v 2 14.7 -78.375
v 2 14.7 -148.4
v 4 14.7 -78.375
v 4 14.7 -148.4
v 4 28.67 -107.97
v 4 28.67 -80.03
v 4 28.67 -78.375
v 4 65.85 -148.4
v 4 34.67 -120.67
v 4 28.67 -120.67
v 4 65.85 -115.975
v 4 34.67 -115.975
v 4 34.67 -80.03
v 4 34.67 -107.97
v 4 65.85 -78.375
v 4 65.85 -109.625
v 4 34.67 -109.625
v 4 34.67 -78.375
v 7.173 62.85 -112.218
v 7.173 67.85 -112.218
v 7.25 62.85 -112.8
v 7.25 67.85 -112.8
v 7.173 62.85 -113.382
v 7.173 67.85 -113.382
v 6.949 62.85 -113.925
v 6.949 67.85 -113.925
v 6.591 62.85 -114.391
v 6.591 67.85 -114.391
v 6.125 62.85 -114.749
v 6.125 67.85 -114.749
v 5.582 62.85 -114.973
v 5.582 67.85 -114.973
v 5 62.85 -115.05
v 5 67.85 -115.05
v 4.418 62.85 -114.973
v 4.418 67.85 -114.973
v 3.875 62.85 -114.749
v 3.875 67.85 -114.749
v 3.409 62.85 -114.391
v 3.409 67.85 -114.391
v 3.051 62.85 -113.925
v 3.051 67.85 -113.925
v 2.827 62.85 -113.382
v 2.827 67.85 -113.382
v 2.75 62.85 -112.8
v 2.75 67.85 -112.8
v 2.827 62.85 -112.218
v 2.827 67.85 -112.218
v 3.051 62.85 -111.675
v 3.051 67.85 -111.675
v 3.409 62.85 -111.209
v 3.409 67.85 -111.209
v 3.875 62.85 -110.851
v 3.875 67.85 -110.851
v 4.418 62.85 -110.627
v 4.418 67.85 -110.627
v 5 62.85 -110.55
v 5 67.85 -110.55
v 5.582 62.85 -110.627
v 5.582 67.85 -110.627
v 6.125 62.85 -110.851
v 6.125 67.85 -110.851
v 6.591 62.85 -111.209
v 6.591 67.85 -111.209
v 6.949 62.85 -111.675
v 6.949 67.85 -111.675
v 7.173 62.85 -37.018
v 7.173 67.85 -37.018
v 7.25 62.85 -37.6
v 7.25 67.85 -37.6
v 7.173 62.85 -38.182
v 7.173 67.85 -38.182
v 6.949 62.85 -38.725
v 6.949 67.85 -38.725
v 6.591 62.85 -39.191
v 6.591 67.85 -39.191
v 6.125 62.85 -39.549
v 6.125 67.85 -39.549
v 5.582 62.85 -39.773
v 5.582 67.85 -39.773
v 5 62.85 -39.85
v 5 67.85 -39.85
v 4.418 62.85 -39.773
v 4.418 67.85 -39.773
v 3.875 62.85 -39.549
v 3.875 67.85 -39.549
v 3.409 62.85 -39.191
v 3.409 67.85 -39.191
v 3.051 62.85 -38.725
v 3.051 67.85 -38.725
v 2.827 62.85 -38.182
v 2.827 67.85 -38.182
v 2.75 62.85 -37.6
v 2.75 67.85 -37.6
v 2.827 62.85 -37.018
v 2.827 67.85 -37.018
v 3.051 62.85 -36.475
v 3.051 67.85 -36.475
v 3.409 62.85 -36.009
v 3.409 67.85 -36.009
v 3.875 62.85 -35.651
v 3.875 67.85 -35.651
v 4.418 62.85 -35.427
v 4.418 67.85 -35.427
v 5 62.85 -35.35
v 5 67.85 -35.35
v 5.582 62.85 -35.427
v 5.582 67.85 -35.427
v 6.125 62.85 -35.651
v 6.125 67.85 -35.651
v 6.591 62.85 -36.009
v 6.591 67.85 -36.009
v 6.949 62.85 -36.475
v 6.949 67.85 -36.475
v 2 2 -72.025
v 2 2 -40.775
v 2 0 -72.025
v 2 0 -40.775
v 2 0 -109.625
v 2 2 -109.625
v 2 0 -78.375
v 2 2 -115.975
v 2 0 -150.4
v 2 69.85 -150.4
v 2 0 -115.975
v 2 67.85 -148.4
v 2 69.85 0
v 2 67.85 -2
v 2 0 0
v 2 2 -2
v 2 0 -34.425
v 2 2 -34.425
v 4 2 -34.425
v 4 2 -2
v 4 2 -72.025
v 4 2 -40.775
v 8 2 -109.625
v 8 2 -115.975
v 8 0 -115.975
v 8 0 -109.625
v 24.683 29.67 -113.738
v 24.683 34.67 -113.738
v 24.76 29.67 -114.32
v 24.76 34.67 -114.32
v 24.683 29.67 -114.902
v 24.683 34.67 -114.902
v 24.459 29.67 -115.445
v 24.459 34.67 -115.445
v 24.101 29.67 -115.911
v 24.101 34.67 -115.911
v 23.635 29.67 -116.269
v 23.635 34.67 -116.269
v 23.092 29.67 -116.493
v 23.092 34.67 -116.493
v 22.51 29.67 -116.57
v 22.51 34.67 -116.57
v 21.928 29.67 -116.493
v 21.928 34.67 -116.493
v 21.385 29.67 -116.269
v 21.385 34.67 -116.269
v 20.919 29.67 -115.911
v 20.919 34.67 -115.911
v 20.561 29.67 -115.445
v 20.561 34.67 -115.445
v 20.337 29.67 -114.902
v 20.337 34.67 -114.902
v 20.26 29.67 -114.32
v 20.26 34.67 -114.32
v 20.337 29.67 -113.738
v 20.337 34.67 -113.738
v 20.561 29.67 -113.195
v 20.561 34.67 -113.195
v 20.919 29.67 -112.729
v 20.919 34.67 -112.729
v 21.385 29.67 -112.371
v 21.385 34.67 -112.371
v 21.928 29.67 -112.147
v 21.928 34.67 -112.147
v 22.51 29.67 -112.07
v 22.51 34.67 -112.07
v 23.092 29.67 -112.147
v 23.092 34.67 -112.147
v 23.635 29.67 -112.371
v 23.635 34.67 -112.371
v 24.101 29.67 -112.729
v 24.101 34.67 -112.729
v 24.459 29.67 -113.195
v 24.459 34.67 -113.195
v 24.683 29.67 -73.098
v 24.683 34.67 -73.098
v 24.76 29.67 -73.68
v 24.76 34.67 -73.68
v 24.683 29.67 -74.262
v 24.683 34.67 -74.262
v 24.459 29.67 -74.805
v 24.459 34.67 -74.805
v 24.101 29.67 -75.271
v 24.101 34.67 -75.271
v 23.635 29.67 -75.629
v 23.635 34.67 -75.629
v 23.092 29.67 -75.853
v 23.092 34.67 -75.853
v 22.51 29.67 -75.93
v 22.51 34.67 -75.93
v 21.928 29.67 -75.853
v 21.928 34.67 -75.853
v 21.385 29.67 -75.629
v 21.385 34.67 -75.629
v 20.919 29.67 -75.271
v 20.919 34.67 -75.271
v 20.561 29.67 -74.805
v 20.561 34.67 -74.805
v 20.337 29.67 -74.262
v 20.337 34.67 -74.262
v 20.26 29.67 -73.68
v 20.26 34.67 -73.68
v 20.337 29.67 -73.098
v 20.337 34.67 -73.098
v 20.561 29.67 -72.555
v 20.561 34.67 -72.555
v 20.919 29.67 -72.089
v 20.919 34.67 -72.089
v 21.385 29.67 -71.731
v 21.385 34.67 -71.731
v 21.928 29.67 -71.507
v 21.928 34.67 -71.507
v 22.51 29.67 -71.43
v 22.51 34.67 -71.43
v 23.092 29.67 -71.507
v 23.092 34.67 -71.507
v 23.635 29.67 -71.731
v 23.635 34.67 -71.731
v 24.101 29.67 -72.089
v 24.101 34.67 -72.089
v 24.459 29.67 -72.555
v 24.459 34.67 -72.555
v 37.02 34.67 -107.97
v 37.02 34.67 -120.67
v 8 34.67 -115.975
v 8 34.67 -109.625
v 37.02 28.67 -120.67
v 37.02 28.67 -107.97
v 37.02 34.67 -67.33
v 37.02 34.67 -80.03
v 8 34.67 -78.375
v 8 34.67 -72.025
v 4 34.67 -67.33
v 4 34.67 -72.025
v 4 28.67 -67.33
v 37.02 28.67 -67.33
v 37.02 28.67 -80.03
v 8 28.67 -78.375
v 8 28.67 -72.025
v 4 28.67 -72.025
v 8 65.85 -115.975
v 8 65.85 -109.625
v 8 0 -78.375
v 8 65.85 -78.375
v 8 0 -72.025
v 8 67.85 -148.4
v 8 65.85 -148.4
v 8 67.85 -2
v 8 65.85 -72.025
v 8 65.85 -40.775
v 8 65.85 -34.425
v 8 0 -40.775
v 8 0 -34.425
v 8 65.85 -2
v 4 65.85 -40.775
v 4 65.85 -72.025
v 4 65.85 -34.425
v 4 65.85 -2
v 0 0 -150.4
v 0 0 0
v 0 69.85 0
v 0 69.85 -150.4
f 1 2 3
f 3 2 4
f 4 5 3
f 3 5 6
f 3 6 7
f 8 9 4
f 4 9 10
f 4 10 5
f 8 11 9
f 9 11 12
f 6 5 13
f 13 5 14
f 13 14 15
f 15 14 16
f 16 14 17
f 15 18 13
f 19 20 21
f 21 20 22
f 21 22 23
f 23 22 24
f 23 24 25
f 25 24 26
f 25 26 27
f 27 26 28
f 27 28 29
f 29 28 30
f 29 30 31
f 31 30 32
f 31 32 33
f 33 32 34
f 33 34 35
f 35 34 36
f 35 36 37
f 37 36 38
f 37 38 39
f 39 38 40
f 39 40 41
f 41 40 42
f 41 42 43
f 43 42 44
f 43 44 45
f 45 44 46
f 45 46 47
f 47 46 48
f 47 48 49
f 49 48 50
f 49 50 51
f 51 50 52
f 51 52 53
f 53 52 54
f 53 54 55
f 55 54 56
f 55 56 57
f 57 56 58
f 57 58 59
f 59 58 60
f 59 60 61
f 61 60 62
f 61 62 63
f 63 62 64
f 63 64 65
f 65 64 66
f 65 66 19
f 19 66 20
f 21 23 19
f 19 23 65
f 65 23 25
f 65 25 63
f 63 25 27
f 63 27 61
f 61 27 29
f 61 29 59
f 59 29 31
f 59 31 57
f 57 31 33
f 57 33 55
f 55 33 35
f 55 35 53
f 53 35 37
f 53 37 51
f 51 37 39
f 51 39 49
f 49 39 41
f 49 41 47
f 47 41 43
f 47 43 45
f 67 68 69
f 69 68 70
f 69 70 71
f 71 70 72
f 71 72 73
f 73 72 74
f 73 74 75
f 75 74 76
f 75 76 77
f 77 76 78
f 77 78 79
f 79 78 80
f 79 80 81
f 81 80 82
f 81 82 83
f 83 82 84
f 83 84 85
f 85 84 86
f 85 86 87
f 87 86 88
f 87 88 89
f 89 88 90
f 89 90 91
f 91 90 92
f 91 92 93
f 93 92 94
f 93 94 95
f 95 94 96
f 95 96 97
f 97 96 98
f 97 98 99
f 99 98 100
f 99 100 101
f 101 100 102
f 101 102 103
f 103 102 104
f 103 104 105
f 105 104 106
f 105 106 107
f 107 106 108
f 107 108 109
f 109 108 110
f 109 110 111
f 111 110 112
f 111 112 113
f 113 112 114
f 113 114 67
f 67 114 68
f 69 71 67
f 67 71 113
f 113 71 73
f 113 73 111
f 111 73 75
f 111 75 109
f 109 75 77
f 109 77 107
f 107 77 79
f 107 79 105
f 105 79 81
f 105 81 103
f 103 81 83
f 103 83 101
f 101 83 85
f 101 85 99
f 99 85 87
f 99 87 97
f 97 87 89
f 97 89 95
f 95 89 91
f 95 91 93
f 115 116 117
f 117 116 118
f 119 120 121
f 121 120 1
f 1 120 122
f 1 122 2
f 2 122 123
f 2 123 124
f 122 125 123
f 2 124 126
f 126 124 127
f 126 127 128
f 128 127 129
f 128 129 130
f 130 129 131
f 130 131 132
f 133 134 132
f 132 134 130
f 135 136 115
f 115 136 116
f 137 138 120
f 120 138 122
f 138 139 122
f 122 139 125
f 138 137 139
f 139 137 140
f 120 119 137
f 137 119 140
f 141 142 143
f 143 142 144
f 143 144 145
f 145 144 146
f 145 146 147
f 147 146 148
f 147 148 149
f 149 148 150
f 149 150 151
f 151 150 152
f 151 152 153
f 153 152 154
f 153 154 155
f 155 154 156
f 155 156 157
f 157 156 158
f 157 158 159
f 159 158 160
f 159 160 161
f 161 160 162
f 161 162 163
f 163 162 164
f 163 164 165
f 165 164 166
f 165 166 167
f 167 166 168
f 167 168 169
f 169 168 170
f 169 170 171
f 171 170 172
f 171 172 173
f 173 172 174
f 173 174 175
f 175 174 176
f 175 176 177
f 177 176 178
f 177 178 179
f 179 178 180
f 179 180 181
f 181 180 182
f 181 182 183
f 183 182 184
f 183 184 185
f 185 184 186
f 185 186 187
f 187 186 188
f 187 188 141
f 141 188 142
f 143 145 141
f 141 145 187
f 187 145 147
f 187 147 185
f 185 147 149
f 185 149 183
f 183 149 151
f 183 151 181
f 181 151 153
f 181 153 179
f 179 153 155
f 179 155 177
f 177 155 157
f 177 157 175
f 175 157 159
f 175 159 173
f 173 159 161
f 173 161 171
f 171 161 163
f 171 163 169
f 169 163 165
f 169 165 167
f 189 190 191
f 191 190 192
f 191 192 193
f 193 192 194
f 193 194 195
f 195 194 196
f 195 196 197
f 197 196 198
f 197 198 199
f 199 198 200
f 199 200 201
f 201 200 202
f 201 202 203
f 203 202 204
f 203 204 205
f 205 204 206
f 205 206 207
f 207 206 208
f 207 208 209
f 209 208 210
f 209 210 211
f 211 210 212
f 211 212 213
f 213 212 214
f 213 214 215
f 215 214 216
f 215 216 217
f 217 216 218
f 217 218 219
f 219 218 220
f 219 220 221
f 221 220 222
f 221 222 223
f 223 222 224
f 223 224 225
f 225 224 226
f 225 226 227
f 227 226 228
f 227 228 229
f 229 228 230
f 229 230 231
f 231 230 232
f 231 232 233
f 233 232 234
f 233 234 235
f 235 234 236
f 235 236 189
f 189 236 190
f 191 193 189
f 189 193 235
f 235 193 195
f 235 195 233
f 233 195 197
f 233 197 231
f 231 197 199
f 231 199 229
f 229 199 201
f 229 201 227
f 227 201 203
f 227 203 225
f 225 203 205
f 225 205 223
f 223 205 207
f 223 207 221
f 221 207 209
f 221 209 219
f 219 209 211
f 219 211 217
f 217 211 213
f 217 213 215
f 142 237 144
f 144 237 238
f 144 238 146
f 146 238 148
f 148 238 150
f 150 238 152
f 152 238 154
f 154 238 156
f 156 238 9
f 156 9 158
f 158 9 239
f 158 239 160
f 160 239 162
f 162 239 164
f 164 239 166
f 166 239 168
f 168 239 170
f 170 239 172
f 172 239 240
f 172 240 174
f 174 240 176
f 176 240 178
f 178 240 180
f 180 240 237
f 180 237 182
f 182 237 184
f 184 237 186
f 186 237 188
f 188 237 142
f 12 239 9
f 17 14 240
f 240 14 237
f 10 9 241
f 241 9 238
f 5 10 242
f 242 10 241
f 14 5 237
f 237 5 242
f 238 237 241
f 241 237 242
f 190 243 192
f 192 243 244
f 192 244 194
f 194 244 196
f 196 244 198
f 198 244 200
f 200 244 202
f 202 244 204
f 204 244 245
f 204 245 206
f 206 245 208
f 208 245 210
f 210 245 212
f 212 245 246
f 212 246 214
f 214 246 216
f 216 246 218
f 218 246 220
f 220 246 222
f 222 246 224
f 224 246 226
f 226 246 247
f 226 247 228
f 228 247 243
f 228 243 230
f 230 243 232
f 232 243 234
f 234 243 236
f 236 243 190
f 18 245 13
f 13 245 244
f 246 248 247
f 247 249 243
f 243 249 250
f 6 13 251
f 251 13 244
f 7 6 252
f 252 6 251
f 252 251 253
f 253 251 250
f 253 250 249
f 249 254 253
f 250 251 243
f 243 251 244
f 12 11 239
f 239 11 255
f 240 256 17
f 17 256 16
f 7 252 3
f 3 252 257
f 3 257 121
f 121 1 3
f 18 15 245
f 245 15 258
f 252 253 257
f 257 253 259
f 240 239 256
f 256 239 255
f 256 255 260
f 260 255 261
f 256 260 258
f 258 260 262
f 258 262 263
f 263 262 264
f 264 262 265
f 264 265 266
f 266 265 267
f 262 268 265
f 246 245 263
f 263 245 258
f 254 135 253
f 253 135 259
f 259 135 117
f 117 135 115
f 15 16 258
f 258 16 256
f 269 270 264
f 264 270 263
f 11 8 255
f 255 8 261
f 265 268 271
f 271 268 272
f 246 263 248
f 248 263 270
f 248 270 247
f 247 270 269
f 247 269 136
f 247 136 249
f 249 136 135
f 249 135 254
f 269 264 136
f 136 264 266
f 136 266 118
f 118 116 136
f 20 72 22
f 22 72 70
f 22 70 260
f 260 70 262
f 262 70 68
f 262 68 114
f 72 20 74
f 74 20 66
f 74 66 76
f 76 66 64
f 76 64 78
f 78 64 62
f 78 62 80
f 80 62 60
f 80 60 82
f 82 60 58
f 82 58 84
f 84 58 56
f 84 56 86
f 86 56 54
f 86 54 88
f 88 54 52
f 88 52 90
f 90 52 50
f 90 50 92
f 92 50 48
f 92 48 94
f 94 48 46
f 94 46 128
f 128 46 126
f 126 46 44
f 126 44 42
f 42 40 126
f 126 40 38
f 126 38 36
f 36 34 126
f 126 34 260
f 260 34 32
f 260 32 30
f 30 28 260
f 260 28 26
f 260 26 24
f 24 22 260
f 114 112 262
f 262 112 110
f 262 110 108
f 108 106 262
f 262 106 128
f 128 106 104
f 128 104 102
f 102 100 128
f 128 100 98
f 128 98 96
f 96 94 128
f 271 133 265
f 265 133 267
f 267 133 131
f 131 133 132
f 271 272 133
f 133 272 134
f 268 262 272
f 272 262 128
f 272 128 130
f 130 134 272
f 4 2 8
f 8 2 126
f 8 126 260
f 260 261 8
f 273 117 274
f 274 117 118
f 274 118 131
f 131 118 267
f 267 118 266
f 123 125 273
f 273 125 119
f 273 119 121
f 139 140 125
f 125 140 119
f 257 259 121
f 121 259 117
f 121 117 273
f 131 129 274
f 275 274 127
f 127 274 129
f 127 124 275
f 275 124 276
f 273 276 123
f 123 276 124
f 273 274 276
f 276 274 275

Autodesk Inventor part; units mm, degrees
ref_plane "YZ Plane" through (0, 0, 0) normal (1, 0, 0) x (0, 1, 0)
ref_plane "XZ Plane" through (0, 0, 0) normal (0, 1, 0) x (-1, 0, 0)
ref_plane "XY Plane" through (0, 0, 0) normal (0, 0, 1) x (1, 0, 0)
sketch "Sketch1" plane through (0, 0, 0) normal (1, 0, 0) x (0, 1, 0)
  line L0 (0, 0) -> (69.85, 0)
  line L1 (69.85, 0) -> (69.85, -150.4)
  line L2 (69.85, -150.4) -> (0, -150.4)
  line L3 (0, -150.4) -> (0, 0)
  dimension "d0" = 69.85
  dimension "d1" = 150.4
extrude "Extrusion1" add sketch "Sketch1" along normal blind 2
sketch "Sketch2" plane through (2, 0, 0) normal (1, 0, 0) x (0, 0, -1)
  line L0 (150.4, 0) -> (150.4, 69.85)
  line L1 (150.4, 69.85) -> (0, 69.85)
  line L2 (0, 69.85) -> (0, 0)
  line L3 (0, 0) -> (150.4, 0)
  line L4 (150.4, 69.85) -> (148.4, 69.85)
  line L5 (148.4, 69.85) -> (148.4, 0)
  line L6 (148.4, 0) -> (150.4, 0)
  line L7 (150.4, 0) -> (150.4, 69.85)
  line L8 (0, 69.85) -> (2, 69.85)
  line L9 (2, 69.85) -> (2, 0)
  line L10 (2, 0) -> (0, 0)
  line L11 (0, 0) -> (0, 69.85)
  line L12 (0, 0) -> (150.4, 0)
  line L13 (150.4, 0) -> (150.4, 2)
  line L14 (150.4, 2) -> (0, 2)
  line L15 (0, 2) -> (0, 0)
  point P0 (2, 2)
  point P1 (148.4, 2)
  dimension "d4" = 2
  dimension "d5" = 2
  dimension "d6" = 2
extrude "Extrusion2" add sketch "Sketch2" along normal blind 2 contours L14 L9 L1 L5
sketch "Sketch3" plane through (4, 0, 0) normal (1, 0, 0) x (0, 0, -1)
  line L0 (150.4, 0) -> (150.4, 69.85)
  line L1 (0, 0) -> (150.4, 0)
  line L2 (0, 69.85) -> (0, 0)
  line L3 (150.4, 69.85) -> (0, 69.85)
  line L4 (0, 69.85) -> (75.2, 69.85) construction
  line L5 (75.2, 69.85) -> (75.2, 0) construction
  line L6 (75.2, 0) -> (0, 0) construction
  line L7 (0, 0) -> (0, 69.85) construction
  line L8 (0, 0) -> (150.4, 0) construction
  line L9 (0, 0) -> (37.6, 0) construction
  line L10 (37.6, 0) -> (37.6, 69.85) construction
  line L11 (37.6, 69.85) -> (0, 69.85) construction
  line L12 (0, 69.85) -> (0, 0) construction
  line L13 (150.4, 0) -> (150.4, 69.85) construction
  line L14 (75.2, 69.85) -> (150.4, 69.85) construction
  line L15 (150.4, 69.85) -> (150.4, 0) construction
  line L16 (150.4, 0) -> (75.2, 0) construction
  line L17 (75.2, 0) -> (75.2, 69.85) construction
  line L18 (75.2, 0) -> (112.8, 0) construction
  line L19 (112.8, 0) -> (112.8, 69.85) construction
  line L20 (112.8, 69.85) -> (75.2, 69.85) construction
  line L21 (75.2, 69.85) -> (75.2, 0) construction
  line L22 (34.425, 0) -> (34.425, 69.85) construction
  line L23 (34.425, 69.85) -> (40.775, 69.85) construction
  line L24 (40.775, 69.85) -> (40.775, 0) construction
  line L25 (40.775, 0) -> (34.425, 0) construction
  line L26 (34.425, 0) -> (40.775, 69.85) construction
  line L27 (34.425, 69.85) -> (40.775, 0) construction
  line L28 (72.025, 0) -> (72.025, 69.85) construction
  line L29 (72.025, 69.85) -> (78.375, 69.85) construction
  line L30 (78.375, 69.85) -> (78.375, 0) construction
  line L31 (78.375, 0) -> (72.025, 0) construction
  line L32 (72.025, 0) -> (78.375, 69.85) construction
  line L33 (72.025, 69.85) -> (78.375, 0) construction
  line L34 (109.625, 0) -> (109.625, 69.85) construction
  line L35 (109.625, 69.85) -> (115.975, 69.85) construction
  line L36 (115.975, 69.85) -> (115.975, 0) construction
  line L37 (115.975, 0) -> (109.625, 0) construction
  line L38 (109.625, 0) -> (115.975, 69.85) construction
  line L39 (109.625, 69.85) -> (115.975, 0) construction
  line L40 (34.425, 69.85) -> (40.775, 69.85)
  line L41 (40.775, 69.85) -> (40.775, 0)
  line L42 (40.775, 0) -> (34.425, 0)
  line L43 (34.425, 0) -> (34.425, 69.85)
  line L44 (72.025, 0) -> (78.375, 0)
  line L45 (78.375, 0) -> (78.375, 69.85)
  line L46 (78.375, 69.85) -> (72.025, 69.85)
  line L47 (72.025, 69.85) -> (72.025, 0)
  line L48 (109.625, 69.85) -> (115.975, 69.85)
  line L49 (115.975, 69.85) -> (115.975, 0)
  line L50 (115.975, 0) -> (109.625, 0)
  line L51 (109.625, 0) -> (109.625, 69.85)
  point P0 (37.6, 34.925)
  point P1 (75.2, 34.925)
  point P2 (112.8, 34.925)
  dimension "d9" = 6.35
  dimension "d10" = 6.35
  dimension "d11" = 6.35
extrude "Extrusion3" add sketch "Sketch3" along normal blind 4 contours L1 L51 L3 L49 | L1 L47 L3 L45 | L1 L43 L3 L41
sketch "Sketch4" plane through (0, 69.85, 0) normal (0, 1, 0) x (1, 0, 0)
  line L0 (0, 150.4) -> (0, 0)
  line L1 (0, 150.4) -> (0, 0) construction
  line L2 (0, 0) -> (2, 0) construction
  line L3 (2, 2) -> (2, 0) construction
  line L4 (2, 2) -> (4, 2) construction
  line L5 (4, 34.425) -> (4, 2) construction
  line L6 (4, 34.425) -> (8, 34.425) construction
  line L7 (8, 40.775) -> (8, 34.425) construction
  line L8 (4, 40.775) -> (8, 40.775) construction
  line L9 (4, 72.025) -> (4, 40.775) construction
  line L10 (4, 72.025) -> (8, 72.025) construction
  line L11 (8, 78.375) -> (8, 72.025) construction
  line L12 (4, 78.375) -> (8, 78.375) construction
  line L13 (4, 109.625) -> (4, 78.375) construction
  line L14 (4, 109.625) -> (8, 109.625) construction
  line L15 (8, 115.975) -> (8, 109.625) construction
  line L16 (4, 115.975) -> (8, 115.975) construction
  line L17 (4, 148.4) -> (4, 115.975) construction
  line L18 (2, 148.4) -> (4, 148.4) construction
  line L19 (2, 150.4) -> (2, 148.4) construction
  line L20 (0, 150.4) -> (2, 150.4) construction
  line L21 (2, 0) -> (0, 0)
  line L22 (0, 0) -> (0, 150.4)
  line L23 (0, 150.4) -> (2, 150.4)
  line L24 (2, 150.4) -> (2, 0)
  line L25 (2, 0) -> (8, 0)
  line L26 (8, 0) -> (8, 150.4)
  line L27 (8, 150.4) -> (2, 150.4)
  line L28 (2, 150.4) -> (2, 0)
extrude "Extrusion4" cut sketch "Sketch4" against normal blind 2 contours L27 L26 L25 L24
sketch "Sketch5" plane through (0, 67.85, 0) normal (0, 1, 0) x (1, 0, 0)
  line L0 (4, 115.975) -> (8, 115.975)
  line L1 (4, 148.4) -> (4, 115.975)
  line L2 (2, 148.4) -> (4, 148.4)
  line L3 (2, 2) -> (2, 148.4)
  line L4 (4, 2) -> (2, 2)
  line L5 (4, 34.425) -> (4, 2)
  line L6 (8, 34.425) -> (4, 34.425)
  line L7 (8, 40.775) -> (8, 34.425)
  line L8 (4, 40.775) -> (8, 40.775)
  line L9 (4, 72.025) -> (4, 40.775)
  line L10 (8, 72.025) -> (4, 72.025)
  line L11 (8, 78.375) -> (8, 72.025)
  line L12 (4, 78.375) -> (8, 78.375)
  line L13 (4, 109.625) -> (4, 78.375)
  line L14 (8, 109.625) -> (4, 109.625)
  line L15 (8, 115.975) -> (8, 109.625)
  line L16 (2, 2) -> (4, 2)
  line L17 (2, 2) -> (8, 2)
  line L18 (8, 2) -> (8, 148.4)
  line L19 (8, 148.4) -> (2, 148.4)
  line L20 (2, 148.4) -> (2, 2)
  point P0 (0, 0)
  point P1 (4, 2)
extrude "Extrusion5" add sketch "Sketch5" against normal blind 2 contours L1 L19 L18 L0 | L18 L12 L13 L14 | L18 L8 L9 L10 | L5 L6 L18 L17
sketch "Sketch6" plane through (4, 0, 0) normal (1, 0, 0) x (0, 0, -1)
  line L0 (2, 67.85) -> (148.4, 67.85) construction
  line L1 (2, 67.85) -> (2, 65.85) construction
  line L2 (34.425, 65.85) -> (2, 65.85) construction
  line L3 (34.425, 65.85) -> (34.425, 0) construction
  line L4 (34.425, 0) -> (40.775, 0) construction
  line L5 (40.775, 0) -> (40.775, 65.85) construction
  line L6 (72.025, 65.85) -> (40.775, 65.85) construction
  line L7 (72.025, 65.85) -> (72.025, 0) construction
  line L8 (72.025, 0) -> (78.375, 0) construction
  line L9 (78.375, 0) -> (78.375, 65.85) construction
  line L10 (109.625, 65.85) -> (78.375, 65.85) construction
  line L11 (109.625, 65.85) -> (109.625, 0) construction
  line L12 (109.625, 0) -> (115.975, 0) construction
  line L13 (115.975, 0) -> (115.975, 65.85) construction
  line L14 (148.4, 65.85) -> (115.975, 65.85) construction
  line L15 (148.4, 67.85) -> (148.4, 65.85) construction
  line L16 (109.625, 65.85) -> (78.375, 65.85) construction
  line L17 (78.375, 65.85) -> (78.375, 2) construction
  line L18 (78.375, 2) -> (109.625, 2) construction
  line L19 (109.625, 2) -> (109.625, 65.85) construction
  line L20 (148.4, 65.85) -> (115.975, 65.85) construction
  line L21 (115.975, 65.85) -> (115.975, 2) construction
  line L22 (115.975, 2) -> (148.4, 2) construction
  line L23 (148.4, 2) -> (148.4, 65.85) construction
  line L24 (72.025, 65.85) -> (40.775, 65.85) construction
  line L25 (40.775, 65.85) -> (40.775, 2) construction
  line L26 (40.775, 2) -> (72.025, 2) construction
  line L27 (72.025, 2) -> (72.025, 65.85) construction
  line L28 (78.375, 2) -> (78.375, 28.67) construction
  line L29 (94, 28.67) -> (114.32, 28.67)
  line L30 (114.32, 28.67) -> (73.68, 28.67)
  line L31 (73.68, 28.67) -> (67.33, 28.67)
  line L32 (67.33, 28.67) -> (80.03, 28.67)
  line L33 (80.03, 28.67) -> (80.03, 34.67)
  line L34 (80.03, 34.67) -> (67.33, 34.67)
  line L35 (67.33, 34.67) -> (67.33, 28.67)
  line L36 (114.32, 28.67) -> (120.67, 28.67)
  line L37 (120.67, 28.67) -> (107.97, 28.67)
  line L38 (107.97, 28.67) -> (107.97, 34.67)
  line L39 (107.97, 34.67) -> (120.67, 34.67)
  line L40 (120.67, 34.67) -> (120.67, 28.67)
  point P0 (0, 0)
  dimension "d18" = 26.67
  dimension "d31" = 20.32
  dimension "d32" = 40.64
  dimension "d33" = 6.35
  dimension "d34" = 12.7
  dimension "d35" = 6
  dimension "d36" = 6.35
  dimension "d37" = 12.7
  dimension "d38" = 6
extrude "Extrusion6" add sketch "Sketch6" along normal blind 33.02
sketch "Sketch12" plane through (4, 34.67, -67.33) normal (0, 1, 0) x (1, 0, 0)
  line L0 (4, 11.045) -> (0, 11.045) construction
  line L1 (4, 4.695) -> (4, 11.045) construction
  line L2 (0, 4.695) -> (4, 4.695) construction
  line L3 (0, 0) -> (0, 4.695) construction
  line L4 (0, 0) -> (33.02, 0) construction
  line L5 (33.02, 12.7) -> (33.02, 0) construction
  line L6 (0, 12.7) -> (33.02, 12.7) construction
  line L7 (0, 11.045) -> (0, 12.7) construction
  line L8 (4, 48.645) -> (0, 48.645) construction
  line L9 (4, 42.295) -> (4, 48.645) construction
  line L10 (0, 42.295) -> (4, 42.295) construction
  line L11 (0, 40.64) -> (0, 42.295) construction
  line L12 (0, 40.64) -> (33.02, 40.64) construction
  line L13 (33.02, 53.34) -> (33.02, 40.64) construction
  line L14 (0, 53.34) -> (33.02, 53.34) construction
  line L15 (0, 48.645) -> (0, 53.34) construction
  line L16 (4, 4.695) -> (4, -26.555) construction
  line L17 (4, 4.695) -> (33.02, 4.695) construction
  line L18 (33.02, 4.695) -> (33.02, 0) construction
  line L19 (33.02, 0) -> (4, 0) construction
  line L20 (4, 0) -> (4, 4.695) construction
  circle A0 centre (18.51, 6.35) radius 2.25 construction
  line L21 (4, 48.645) -> (33.02, 48.645) construction
  circle A1 centre (18.51, 46.99) radius 2.25 construction
  circle A2 centre (18.51, 6.35) radius 2.25
  circle A3 centre (18.51, 46.99) radius 2.25
  point P0 (-4, -67.33)
  dimension "d39" = 4.5
  dimension "d40" = 4.5
extrude "Extrusion10" cut sketch "Sketch12" against normal blind 5
sketch "Sketch13" plane through (8, 0, 0) normal (1, 0, 0) x (0, 0, -1)
  line L0 (120.67, 28.67) -> (115.975, 28.67) construction
  line L1 (115.975, 28.67) -> (115.975, 2) construction
  line L2 (115.975, 2) -> (148.4, 2) construction
  line L3 (148.4, 2) -> (148.4, 65.85) construction
  line L4 (148.4, 65.85) -> (115.975, 65.85) construction
  line L5 (115.975, 65.85) -> (115.975, 34.67) construction
  line L6 (115.975, 34.67) -> (120.67, 34.67) construction
  line L7 (120.67, 34.67) -> (120.67, 28.67) construction
  line L8 (115.975, 28.67) -> (109.625, 28.67) construction
  line L9 (109.625, 28.67) -> (109.625, 0) construction
  line L10 (109.625, 0) -> (115.975, 0) construction
  line L11 (115.975, 0) -> (115.975, 28.67) construction
  line L12 (78.375, 2) -> (109.625, 2)
  line L13 (115.975, 28.67) -> (109.625, 28.67)
  line L14 (109.625, 28.67) -> (109.625, 2)
  line L15 (109.625, 2) -> (115.975, 2)
  line L16 (115.975, 2) -> (115.975, 28.67)
  point P0 (0, 0)
extrude "Extrusion11" cut sketch "Sketch13" against normal up to surface (4 mm away)
sketch "Sketch14" plane through (4, 0, 0) normal (-1, 0, 0) x (0, 0, 1)
  line L0 (-109.625, 2) -> (-115.975, 2)
  line L1 (-115.975, 0) -> (-115.975, 2)
  line L2 (-109.625, 0) -> (-115.975, 0)
  line L3 (-109.625, 2) -> (-109.625, 0)
  line L4 (-72.025, 2) -> (-78.375, 2)
  line L5 (-78.375, 0) -> (-78.375, 2)
  line L6 (-72.025, 0) -> (-78.375, 0)
  line L7 (-72.025, 2) -> (-72.025, 0)
  line L8 (-34.425, 2) -> (-40.775, 2)
  line L9 (-40.775, 0) -> (-40.775, 2)
  line L10 (-34.425, 0) -> (-40.775, 0)
  line L11 (-34.425, 2) -> (-34.425, 0)
  point P0 (0, 0)
extrude "Extrusion12" add sketch "Sketch14" along normal blind 2
sketch "Sketch15" plane through (0, 67.85, 0) normal (0, 1, 0) x (1, 0, 0)
  line L0 (8, 2) -> (8, 148.4) construction
  line L1 (2, 148.4) -> (8, 148.4) construction
  line L2 (2, 2) -> (2, 148.4) construction
  line L3 (8, 2) -> (2, 2) construction
  line L4 (8, 109.625) -> (8, 115.975) construction
  line L5 (8, 148.4) -> (8, 115.975) construction
  line L6 (8, 2) -> (8, 148.4) construction
  line L7 (8, 34.425) -> (8, 2) construction
  line L8 (8, 34.425) -> (8, 40.775) construction
  line L9 (8, 72.025) -> (8, 40.775) construction
  line L10 (8, 72.025) -> (8, 78.375) construction
  line L11 (8, 109.625) -> (8, 78.375) construction
  line L12 (8, 34.425) -> (4, 34.425) construction
  line L13 (8, 34.425) -> (2, 34.425) construction
  line L14 (2, 34.425) -> (2, 40.775) construction
  line L15 (2, 40.775) -> (8, 40.775) construction
  line L16 (8, 40.775) -> (8, 34.425) construction
  line L17 (8, 109.625) -> (2, 109.625) construction
  line L18 (2, 109.625) -> (2, 115.975) construction
  line L19 (2, 115.975) -> (8, 115.975) construction
  line L20 (8, 115.975) -> (8, 109.625) construction
  circle A0 centre (5, 37.6) radius 2.25 construction
  circle A1 centre (5, 37.6) radius 2.25
  circle A2 centre (5, 112.8) radius 2.25
  point P0 (0, 0)
  dimension "d47" = 4.5
  dimension "d48" = 4.5
extrude "Extrusion13" cut sketch "Sketch15" against normal blind 5
sketch "Sketch16" plane through (4, 0, 0) normal (1, 0, 0) x (0, 0, -1)
  line L0 (107.97, 28.67) -> (120.67, 28.67) construction
  line L1 (107.97, 28.67) -> (107.97, 34.67) construction
  line L2 (107.97, 34.67) -> (109.625, 34.67) construction
  line L3 (109.625, 34.67) -> (109.625, 65.85) construction
  line L4 (109.625, 65.85) -> (78.375, 65.85) construction
  line L5 (78.375, 65.85) -> (78.375, 34.67) construction
  line L6 (78.375, 34.67) -> (80.03, 34.67) construction
  line L7 (80.03, 34.67) -> (80.03, 28.67) construction
  line L8 (80.03, 28.67) -> (78.375, 28.67) construction
  line L9 (78.375, 28.67) -> (78.375, 2) construction
  line L10 (78.375, 2) -> (109.625, 2) construction
  line L11 (109.625, 2) -> (115.975, 2) construction
  line L12 (115.975, 2) -> (148.4, 2) construction
  line L13 (148.4, 2) -> (148.4, 65.85) construction
  line L14 (148.4, 65.85) -> (115.975, 65.85) construction
  line L15 (115.975, 65.85) -> (115.975, 34.67) construction
  line L16 (115.975, 34.67) -> (120.67, 34.67) construction
  line L17 (120.67, 34.67) -> (120.67, 28.67) construction
  line L18 (148.4, 2) -> (78.375, 2) construction
  line L19 (78.375, 2) -> (78.375, 14.7) construction
  line L20 (78.375, 14.7) -> (148.4, 14.7) construction
  line L21 (148.4, 14.7) -> (148.4, 2) construction
  line L22 (115.975, 2) -> (148.4, 2)
  line L23 (78.375, 14.7) -> (148.4, 14.7)
  line L24 (148.4, 14.7) -> (148.4, 2)
  line L25 (148.4, 2) -> (78.375, 2)
  line L26 (78.375, 2) -> (78.375, 14.7)
  point P0 (0, 0)
  dimension "d51" = 12.7
extrude "Extrusion14" cut sketch "Sketch16" against normal up to surface (2 mm away)
properties part number "leftwall"
